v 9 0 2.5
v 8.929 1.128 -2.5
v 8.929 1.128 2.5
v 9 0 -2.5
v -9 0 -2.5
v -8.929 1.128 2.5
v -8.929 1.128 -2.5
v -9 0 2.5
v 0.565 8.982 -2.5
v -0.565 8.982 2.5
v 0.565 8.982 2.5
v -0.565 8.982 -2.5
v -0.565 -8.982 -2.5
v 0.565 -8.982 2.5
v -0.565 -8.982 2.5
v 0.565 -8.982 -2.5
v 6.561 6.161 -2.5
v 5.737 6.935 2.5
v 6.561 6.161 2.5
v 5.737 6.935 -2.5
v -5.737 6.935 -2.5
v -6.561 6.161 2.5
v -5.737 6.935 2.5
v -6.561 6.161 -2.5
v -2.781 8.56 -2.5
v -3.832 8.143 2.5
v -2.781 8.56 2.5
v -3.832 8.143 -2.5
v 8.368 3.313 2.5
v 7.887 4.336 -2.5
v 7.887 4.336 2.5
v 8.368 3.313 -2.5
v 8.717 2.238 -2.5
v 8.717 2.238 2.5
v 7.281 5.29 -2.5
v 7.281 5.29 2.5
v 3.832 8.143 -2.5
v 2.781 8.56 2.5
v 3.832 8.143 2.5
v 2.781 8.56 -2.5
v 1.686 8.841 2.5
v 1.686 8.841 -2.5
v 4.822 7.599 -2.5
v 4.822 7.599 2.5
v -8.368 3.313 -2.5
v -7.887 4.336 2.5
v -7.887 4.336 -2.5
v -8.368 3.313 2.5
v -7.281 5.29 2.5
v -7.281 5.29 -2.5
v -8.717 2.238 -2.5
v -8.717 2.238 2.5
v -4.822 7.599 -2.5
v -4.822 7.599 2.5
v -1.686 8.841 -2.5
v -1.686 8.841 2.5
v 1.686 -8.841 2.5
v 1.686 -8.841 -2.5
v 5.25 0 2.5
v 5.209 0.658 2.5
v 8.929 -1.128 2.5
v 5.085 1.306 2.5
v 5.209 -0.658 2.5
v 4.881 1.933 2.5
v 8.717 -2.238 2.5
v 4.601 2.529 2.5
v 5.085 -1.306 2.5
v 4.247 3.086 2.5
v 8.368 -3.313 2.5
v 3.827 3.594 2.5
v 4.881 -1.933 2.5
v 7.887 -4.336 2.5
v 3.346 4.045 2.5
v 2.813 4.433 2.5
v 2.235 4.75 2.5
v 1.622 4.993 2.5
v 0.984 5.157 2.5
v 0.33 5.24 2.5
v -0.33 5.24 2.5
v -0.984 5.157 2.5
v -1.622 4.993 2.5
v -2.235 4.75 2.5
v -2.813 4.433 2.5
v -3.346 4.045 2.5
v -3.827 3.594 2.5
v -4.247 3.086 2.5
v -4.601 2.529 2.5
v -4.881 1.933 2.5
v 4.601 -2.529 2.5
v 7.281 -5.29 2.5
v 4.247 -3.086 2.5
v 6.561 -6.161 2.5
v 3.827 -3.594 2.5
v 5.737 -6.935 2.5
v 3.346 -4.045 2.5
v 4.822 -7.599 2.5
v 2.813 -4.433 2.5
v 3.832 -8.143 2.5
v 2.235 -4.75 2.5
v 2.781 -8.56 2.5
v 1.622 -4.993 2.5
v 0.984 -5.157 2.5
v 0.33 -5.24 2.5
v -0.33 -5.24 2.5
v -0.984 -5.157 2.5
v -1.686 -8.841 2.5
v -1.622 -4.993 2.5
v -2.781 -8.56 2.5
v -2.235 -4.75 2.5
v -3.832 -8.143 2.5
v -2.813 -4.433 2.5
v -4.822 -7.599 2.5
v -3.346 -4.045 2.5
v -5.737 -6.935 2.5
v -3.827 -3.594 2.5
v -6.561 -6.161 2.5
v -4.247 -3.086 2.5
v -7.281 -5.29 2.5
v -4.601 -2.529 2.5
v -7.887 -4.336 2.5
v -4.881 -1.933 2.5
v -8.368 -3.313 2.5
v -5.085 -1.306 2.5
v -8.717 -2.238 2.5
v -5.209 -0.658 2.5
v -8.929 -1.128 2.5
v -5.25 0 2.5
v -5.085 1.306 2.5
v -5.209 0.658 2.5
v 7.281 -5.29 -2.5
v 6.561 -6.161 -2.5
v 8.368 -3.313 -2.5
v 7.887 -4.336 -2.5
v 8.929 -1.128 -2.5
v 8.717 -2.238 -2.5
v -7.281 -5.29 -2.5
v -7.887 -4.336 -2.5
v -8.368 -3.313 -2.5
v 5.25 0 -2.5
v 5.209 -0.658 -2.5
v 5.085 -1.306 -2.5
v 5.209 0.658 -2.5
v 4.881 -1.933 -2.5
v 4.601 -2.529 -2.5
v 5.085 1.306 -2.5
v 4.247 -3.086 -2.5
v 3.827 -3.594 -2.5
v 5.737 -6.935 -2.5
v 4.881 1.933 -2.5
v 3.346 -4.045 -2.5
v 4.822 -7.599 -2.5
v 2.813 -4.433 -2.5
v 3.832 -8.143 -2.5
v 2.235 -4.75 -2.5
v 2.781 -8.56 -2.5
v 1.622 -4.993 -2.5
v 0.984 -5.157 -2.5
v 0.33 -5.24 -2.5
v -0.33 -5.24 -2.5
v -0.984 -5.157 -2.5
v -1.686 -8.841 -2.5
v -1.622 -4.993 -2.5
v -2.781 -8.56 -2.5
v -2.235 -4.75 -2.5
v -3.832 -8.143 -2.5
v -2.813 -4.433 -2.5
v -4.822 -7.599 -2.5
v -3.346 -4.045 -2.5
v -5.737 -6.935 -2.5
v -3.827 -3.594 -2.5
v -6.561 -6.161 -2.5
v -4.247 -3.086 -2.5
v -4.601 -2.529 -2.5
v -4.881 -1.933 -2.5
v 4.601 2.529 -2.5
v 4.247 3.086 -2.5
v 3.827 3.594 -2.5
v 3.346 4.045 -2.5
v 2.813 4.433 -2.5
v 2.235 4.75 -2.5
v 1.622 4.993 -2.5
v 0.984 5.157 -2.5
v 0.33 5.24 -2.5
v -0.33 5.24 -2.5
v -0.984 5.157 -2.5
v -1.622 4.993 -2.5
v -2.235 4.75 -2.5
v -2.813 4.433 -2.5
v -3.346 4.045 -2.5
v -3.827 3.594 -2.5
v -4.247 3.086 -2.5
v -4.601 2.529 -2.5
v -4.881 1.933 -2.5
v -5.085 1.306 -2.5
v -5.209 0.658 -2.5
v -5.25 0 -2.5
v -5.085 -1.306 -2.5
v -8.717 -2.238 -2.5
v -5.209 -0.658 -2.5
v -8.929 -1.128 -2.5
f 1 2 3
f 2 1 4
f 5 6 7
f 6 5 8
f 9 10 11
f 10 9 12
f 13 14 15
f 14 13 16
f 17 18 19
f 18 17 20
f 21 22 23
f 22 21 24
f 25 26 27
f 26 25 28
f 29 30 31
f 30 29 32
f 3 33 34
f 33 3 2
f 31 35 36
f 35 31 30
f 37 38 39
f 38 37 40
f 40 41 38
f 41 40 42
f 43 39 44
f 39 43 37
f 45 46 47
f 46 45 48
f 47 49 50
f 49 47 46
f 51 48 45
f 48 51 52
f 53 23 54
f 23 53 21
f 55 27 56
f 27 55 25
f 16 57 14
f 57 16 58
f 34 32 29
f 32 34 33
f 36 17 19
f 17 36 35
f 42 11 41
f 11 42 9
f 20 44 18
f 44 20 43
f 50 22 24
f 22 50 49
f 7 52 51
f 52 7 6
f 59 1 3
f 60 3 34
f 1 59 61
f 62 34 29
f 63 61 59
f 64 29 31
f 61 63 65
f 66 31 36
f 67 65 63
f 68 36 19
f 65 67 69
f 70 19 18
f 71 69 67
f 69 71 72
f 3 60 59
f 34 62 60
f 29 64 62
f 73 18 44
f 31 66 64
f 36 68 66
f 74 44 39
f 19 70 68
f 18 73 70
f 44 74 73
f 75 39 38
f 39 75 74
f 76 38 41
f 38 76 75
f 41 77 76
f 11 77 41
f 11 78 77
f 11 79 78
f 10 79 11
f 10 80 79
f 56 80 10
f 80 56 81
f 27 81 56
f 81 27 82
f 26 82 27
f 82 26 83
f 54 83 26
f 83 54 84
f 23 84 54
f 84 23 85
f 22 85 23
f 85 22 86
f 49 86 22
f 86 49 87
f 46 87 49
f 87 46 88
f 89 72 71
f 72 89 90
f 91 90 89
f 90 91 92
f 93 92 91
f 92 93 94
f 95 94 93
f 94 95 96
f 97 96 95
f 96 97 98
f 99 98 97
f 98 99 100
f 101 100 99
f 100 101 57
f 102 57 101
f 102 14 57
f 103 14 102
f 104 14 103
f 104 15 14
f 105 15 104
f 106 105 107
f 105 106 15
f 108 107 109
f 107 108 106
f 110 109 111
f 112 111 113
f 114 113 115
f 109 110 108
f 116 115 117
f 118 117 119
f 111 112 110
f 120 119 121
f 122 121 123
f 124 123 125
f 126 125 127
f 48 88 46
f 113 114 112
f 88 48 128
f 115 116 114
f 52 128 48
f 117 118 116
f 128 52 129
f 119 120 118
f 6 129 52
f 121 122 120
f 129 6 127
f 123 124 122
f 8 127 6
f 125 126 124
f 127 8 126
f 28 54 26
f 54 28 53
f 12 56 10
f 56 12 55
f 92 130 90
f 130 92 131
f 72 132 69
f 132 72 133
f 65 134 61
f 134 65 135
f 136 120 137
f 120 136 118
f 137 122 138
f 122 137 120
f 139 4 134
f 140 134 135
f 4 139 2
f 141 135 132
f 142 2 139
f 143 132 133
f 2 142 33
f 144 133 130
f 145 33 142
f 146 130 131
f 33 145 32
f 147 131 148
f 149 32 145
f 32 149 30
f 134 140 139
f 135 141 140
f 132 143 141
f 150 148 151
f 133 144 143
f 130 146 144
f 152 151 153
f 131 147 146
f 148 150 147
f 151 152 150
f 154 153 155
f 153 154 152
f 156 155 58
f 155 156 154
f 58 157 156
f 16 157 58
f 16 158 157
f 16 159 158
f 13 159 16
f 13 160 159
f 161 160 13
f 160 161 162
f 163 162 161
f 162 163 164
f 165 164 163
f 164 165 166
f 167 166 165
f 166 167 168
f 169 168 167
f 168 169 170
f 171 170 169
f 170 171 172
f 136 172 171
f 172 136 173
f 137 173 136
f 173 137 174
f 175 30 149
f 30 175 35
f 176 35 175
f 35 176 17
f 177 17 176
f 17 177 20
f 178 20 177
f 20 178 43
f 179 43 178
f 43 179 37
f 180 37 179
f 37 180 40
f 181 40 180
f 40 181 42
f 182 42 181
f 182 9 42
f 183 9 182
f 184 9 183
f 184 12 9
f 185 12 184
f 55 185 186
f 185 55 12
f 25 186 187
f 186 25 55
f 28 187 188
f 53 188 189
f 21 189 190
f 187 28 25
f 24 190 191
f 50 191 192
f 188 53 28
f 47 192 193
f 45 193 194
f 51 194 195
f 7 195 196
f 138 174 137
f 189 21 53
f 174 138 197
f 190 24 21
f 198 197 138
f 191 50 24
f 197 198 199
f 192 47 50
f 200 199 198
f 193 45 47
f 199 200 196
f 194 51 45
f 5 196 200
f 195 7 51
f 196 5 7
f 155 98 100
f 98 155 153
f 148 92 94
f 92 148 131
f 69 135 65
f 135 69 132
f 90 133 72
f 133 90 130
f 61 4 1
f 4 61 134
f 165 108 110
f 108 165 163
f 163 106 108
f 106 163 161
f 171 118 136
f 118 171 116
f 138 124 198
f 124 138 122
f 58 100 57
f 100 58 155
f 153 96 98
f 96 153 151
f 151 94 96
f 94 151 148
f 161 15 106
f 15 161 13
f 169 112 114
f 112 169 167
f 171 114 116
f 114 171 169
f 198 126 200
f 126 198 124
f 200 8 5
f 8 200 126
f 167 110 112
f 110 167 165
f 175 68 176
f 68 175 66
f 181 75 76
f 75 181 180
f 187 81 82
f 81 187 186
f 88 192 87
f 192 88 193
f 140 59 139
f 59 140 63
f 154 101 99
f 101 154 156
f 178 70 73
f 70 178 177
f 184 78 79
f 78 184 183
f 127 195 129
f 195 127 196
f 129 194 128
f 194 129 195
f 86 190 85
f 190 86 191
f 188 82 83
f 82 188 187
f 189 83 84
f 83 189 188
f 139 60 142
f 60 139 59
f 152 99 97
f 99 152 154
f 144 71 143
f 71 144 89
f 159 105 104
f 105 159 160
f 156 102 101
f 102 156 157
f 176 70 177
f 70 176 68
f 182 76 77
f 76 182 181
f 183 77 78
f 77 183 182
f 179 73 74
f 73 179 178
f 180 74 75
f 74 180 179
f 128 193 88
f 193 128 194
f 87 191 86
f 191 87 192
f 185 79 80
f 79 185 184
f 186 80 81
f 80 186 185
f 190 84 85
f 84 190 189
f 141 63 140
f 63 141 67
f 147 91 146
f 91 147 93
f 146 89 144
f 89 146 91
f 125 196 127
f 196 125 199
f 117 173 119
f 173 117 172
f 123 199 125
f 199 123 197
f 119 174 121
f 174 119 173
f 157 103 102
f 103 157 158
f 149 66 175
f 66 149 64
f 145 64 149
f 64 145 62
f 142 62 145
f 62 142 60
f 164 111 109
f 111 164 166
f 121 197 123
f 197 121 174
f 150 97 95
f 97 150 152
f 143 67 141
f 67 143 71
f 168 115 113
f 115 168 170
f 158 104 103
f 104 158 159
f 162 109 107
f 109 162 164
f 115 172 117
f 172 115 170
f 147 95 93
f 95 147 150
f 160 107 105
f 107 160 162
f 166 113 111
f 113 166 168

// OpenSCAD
$fn = 50;


difference() {
	union() {
		translate(v = [0, 0, -2.5000000000]) {
			cylinder(h = 5, r = 9.0000000000);
		}
	}
	union() {
		translate(v = [0, 0, -100.0000000000]) {
			cylinder(h = 200, r = 5.2500000000);
		}
	}
}
